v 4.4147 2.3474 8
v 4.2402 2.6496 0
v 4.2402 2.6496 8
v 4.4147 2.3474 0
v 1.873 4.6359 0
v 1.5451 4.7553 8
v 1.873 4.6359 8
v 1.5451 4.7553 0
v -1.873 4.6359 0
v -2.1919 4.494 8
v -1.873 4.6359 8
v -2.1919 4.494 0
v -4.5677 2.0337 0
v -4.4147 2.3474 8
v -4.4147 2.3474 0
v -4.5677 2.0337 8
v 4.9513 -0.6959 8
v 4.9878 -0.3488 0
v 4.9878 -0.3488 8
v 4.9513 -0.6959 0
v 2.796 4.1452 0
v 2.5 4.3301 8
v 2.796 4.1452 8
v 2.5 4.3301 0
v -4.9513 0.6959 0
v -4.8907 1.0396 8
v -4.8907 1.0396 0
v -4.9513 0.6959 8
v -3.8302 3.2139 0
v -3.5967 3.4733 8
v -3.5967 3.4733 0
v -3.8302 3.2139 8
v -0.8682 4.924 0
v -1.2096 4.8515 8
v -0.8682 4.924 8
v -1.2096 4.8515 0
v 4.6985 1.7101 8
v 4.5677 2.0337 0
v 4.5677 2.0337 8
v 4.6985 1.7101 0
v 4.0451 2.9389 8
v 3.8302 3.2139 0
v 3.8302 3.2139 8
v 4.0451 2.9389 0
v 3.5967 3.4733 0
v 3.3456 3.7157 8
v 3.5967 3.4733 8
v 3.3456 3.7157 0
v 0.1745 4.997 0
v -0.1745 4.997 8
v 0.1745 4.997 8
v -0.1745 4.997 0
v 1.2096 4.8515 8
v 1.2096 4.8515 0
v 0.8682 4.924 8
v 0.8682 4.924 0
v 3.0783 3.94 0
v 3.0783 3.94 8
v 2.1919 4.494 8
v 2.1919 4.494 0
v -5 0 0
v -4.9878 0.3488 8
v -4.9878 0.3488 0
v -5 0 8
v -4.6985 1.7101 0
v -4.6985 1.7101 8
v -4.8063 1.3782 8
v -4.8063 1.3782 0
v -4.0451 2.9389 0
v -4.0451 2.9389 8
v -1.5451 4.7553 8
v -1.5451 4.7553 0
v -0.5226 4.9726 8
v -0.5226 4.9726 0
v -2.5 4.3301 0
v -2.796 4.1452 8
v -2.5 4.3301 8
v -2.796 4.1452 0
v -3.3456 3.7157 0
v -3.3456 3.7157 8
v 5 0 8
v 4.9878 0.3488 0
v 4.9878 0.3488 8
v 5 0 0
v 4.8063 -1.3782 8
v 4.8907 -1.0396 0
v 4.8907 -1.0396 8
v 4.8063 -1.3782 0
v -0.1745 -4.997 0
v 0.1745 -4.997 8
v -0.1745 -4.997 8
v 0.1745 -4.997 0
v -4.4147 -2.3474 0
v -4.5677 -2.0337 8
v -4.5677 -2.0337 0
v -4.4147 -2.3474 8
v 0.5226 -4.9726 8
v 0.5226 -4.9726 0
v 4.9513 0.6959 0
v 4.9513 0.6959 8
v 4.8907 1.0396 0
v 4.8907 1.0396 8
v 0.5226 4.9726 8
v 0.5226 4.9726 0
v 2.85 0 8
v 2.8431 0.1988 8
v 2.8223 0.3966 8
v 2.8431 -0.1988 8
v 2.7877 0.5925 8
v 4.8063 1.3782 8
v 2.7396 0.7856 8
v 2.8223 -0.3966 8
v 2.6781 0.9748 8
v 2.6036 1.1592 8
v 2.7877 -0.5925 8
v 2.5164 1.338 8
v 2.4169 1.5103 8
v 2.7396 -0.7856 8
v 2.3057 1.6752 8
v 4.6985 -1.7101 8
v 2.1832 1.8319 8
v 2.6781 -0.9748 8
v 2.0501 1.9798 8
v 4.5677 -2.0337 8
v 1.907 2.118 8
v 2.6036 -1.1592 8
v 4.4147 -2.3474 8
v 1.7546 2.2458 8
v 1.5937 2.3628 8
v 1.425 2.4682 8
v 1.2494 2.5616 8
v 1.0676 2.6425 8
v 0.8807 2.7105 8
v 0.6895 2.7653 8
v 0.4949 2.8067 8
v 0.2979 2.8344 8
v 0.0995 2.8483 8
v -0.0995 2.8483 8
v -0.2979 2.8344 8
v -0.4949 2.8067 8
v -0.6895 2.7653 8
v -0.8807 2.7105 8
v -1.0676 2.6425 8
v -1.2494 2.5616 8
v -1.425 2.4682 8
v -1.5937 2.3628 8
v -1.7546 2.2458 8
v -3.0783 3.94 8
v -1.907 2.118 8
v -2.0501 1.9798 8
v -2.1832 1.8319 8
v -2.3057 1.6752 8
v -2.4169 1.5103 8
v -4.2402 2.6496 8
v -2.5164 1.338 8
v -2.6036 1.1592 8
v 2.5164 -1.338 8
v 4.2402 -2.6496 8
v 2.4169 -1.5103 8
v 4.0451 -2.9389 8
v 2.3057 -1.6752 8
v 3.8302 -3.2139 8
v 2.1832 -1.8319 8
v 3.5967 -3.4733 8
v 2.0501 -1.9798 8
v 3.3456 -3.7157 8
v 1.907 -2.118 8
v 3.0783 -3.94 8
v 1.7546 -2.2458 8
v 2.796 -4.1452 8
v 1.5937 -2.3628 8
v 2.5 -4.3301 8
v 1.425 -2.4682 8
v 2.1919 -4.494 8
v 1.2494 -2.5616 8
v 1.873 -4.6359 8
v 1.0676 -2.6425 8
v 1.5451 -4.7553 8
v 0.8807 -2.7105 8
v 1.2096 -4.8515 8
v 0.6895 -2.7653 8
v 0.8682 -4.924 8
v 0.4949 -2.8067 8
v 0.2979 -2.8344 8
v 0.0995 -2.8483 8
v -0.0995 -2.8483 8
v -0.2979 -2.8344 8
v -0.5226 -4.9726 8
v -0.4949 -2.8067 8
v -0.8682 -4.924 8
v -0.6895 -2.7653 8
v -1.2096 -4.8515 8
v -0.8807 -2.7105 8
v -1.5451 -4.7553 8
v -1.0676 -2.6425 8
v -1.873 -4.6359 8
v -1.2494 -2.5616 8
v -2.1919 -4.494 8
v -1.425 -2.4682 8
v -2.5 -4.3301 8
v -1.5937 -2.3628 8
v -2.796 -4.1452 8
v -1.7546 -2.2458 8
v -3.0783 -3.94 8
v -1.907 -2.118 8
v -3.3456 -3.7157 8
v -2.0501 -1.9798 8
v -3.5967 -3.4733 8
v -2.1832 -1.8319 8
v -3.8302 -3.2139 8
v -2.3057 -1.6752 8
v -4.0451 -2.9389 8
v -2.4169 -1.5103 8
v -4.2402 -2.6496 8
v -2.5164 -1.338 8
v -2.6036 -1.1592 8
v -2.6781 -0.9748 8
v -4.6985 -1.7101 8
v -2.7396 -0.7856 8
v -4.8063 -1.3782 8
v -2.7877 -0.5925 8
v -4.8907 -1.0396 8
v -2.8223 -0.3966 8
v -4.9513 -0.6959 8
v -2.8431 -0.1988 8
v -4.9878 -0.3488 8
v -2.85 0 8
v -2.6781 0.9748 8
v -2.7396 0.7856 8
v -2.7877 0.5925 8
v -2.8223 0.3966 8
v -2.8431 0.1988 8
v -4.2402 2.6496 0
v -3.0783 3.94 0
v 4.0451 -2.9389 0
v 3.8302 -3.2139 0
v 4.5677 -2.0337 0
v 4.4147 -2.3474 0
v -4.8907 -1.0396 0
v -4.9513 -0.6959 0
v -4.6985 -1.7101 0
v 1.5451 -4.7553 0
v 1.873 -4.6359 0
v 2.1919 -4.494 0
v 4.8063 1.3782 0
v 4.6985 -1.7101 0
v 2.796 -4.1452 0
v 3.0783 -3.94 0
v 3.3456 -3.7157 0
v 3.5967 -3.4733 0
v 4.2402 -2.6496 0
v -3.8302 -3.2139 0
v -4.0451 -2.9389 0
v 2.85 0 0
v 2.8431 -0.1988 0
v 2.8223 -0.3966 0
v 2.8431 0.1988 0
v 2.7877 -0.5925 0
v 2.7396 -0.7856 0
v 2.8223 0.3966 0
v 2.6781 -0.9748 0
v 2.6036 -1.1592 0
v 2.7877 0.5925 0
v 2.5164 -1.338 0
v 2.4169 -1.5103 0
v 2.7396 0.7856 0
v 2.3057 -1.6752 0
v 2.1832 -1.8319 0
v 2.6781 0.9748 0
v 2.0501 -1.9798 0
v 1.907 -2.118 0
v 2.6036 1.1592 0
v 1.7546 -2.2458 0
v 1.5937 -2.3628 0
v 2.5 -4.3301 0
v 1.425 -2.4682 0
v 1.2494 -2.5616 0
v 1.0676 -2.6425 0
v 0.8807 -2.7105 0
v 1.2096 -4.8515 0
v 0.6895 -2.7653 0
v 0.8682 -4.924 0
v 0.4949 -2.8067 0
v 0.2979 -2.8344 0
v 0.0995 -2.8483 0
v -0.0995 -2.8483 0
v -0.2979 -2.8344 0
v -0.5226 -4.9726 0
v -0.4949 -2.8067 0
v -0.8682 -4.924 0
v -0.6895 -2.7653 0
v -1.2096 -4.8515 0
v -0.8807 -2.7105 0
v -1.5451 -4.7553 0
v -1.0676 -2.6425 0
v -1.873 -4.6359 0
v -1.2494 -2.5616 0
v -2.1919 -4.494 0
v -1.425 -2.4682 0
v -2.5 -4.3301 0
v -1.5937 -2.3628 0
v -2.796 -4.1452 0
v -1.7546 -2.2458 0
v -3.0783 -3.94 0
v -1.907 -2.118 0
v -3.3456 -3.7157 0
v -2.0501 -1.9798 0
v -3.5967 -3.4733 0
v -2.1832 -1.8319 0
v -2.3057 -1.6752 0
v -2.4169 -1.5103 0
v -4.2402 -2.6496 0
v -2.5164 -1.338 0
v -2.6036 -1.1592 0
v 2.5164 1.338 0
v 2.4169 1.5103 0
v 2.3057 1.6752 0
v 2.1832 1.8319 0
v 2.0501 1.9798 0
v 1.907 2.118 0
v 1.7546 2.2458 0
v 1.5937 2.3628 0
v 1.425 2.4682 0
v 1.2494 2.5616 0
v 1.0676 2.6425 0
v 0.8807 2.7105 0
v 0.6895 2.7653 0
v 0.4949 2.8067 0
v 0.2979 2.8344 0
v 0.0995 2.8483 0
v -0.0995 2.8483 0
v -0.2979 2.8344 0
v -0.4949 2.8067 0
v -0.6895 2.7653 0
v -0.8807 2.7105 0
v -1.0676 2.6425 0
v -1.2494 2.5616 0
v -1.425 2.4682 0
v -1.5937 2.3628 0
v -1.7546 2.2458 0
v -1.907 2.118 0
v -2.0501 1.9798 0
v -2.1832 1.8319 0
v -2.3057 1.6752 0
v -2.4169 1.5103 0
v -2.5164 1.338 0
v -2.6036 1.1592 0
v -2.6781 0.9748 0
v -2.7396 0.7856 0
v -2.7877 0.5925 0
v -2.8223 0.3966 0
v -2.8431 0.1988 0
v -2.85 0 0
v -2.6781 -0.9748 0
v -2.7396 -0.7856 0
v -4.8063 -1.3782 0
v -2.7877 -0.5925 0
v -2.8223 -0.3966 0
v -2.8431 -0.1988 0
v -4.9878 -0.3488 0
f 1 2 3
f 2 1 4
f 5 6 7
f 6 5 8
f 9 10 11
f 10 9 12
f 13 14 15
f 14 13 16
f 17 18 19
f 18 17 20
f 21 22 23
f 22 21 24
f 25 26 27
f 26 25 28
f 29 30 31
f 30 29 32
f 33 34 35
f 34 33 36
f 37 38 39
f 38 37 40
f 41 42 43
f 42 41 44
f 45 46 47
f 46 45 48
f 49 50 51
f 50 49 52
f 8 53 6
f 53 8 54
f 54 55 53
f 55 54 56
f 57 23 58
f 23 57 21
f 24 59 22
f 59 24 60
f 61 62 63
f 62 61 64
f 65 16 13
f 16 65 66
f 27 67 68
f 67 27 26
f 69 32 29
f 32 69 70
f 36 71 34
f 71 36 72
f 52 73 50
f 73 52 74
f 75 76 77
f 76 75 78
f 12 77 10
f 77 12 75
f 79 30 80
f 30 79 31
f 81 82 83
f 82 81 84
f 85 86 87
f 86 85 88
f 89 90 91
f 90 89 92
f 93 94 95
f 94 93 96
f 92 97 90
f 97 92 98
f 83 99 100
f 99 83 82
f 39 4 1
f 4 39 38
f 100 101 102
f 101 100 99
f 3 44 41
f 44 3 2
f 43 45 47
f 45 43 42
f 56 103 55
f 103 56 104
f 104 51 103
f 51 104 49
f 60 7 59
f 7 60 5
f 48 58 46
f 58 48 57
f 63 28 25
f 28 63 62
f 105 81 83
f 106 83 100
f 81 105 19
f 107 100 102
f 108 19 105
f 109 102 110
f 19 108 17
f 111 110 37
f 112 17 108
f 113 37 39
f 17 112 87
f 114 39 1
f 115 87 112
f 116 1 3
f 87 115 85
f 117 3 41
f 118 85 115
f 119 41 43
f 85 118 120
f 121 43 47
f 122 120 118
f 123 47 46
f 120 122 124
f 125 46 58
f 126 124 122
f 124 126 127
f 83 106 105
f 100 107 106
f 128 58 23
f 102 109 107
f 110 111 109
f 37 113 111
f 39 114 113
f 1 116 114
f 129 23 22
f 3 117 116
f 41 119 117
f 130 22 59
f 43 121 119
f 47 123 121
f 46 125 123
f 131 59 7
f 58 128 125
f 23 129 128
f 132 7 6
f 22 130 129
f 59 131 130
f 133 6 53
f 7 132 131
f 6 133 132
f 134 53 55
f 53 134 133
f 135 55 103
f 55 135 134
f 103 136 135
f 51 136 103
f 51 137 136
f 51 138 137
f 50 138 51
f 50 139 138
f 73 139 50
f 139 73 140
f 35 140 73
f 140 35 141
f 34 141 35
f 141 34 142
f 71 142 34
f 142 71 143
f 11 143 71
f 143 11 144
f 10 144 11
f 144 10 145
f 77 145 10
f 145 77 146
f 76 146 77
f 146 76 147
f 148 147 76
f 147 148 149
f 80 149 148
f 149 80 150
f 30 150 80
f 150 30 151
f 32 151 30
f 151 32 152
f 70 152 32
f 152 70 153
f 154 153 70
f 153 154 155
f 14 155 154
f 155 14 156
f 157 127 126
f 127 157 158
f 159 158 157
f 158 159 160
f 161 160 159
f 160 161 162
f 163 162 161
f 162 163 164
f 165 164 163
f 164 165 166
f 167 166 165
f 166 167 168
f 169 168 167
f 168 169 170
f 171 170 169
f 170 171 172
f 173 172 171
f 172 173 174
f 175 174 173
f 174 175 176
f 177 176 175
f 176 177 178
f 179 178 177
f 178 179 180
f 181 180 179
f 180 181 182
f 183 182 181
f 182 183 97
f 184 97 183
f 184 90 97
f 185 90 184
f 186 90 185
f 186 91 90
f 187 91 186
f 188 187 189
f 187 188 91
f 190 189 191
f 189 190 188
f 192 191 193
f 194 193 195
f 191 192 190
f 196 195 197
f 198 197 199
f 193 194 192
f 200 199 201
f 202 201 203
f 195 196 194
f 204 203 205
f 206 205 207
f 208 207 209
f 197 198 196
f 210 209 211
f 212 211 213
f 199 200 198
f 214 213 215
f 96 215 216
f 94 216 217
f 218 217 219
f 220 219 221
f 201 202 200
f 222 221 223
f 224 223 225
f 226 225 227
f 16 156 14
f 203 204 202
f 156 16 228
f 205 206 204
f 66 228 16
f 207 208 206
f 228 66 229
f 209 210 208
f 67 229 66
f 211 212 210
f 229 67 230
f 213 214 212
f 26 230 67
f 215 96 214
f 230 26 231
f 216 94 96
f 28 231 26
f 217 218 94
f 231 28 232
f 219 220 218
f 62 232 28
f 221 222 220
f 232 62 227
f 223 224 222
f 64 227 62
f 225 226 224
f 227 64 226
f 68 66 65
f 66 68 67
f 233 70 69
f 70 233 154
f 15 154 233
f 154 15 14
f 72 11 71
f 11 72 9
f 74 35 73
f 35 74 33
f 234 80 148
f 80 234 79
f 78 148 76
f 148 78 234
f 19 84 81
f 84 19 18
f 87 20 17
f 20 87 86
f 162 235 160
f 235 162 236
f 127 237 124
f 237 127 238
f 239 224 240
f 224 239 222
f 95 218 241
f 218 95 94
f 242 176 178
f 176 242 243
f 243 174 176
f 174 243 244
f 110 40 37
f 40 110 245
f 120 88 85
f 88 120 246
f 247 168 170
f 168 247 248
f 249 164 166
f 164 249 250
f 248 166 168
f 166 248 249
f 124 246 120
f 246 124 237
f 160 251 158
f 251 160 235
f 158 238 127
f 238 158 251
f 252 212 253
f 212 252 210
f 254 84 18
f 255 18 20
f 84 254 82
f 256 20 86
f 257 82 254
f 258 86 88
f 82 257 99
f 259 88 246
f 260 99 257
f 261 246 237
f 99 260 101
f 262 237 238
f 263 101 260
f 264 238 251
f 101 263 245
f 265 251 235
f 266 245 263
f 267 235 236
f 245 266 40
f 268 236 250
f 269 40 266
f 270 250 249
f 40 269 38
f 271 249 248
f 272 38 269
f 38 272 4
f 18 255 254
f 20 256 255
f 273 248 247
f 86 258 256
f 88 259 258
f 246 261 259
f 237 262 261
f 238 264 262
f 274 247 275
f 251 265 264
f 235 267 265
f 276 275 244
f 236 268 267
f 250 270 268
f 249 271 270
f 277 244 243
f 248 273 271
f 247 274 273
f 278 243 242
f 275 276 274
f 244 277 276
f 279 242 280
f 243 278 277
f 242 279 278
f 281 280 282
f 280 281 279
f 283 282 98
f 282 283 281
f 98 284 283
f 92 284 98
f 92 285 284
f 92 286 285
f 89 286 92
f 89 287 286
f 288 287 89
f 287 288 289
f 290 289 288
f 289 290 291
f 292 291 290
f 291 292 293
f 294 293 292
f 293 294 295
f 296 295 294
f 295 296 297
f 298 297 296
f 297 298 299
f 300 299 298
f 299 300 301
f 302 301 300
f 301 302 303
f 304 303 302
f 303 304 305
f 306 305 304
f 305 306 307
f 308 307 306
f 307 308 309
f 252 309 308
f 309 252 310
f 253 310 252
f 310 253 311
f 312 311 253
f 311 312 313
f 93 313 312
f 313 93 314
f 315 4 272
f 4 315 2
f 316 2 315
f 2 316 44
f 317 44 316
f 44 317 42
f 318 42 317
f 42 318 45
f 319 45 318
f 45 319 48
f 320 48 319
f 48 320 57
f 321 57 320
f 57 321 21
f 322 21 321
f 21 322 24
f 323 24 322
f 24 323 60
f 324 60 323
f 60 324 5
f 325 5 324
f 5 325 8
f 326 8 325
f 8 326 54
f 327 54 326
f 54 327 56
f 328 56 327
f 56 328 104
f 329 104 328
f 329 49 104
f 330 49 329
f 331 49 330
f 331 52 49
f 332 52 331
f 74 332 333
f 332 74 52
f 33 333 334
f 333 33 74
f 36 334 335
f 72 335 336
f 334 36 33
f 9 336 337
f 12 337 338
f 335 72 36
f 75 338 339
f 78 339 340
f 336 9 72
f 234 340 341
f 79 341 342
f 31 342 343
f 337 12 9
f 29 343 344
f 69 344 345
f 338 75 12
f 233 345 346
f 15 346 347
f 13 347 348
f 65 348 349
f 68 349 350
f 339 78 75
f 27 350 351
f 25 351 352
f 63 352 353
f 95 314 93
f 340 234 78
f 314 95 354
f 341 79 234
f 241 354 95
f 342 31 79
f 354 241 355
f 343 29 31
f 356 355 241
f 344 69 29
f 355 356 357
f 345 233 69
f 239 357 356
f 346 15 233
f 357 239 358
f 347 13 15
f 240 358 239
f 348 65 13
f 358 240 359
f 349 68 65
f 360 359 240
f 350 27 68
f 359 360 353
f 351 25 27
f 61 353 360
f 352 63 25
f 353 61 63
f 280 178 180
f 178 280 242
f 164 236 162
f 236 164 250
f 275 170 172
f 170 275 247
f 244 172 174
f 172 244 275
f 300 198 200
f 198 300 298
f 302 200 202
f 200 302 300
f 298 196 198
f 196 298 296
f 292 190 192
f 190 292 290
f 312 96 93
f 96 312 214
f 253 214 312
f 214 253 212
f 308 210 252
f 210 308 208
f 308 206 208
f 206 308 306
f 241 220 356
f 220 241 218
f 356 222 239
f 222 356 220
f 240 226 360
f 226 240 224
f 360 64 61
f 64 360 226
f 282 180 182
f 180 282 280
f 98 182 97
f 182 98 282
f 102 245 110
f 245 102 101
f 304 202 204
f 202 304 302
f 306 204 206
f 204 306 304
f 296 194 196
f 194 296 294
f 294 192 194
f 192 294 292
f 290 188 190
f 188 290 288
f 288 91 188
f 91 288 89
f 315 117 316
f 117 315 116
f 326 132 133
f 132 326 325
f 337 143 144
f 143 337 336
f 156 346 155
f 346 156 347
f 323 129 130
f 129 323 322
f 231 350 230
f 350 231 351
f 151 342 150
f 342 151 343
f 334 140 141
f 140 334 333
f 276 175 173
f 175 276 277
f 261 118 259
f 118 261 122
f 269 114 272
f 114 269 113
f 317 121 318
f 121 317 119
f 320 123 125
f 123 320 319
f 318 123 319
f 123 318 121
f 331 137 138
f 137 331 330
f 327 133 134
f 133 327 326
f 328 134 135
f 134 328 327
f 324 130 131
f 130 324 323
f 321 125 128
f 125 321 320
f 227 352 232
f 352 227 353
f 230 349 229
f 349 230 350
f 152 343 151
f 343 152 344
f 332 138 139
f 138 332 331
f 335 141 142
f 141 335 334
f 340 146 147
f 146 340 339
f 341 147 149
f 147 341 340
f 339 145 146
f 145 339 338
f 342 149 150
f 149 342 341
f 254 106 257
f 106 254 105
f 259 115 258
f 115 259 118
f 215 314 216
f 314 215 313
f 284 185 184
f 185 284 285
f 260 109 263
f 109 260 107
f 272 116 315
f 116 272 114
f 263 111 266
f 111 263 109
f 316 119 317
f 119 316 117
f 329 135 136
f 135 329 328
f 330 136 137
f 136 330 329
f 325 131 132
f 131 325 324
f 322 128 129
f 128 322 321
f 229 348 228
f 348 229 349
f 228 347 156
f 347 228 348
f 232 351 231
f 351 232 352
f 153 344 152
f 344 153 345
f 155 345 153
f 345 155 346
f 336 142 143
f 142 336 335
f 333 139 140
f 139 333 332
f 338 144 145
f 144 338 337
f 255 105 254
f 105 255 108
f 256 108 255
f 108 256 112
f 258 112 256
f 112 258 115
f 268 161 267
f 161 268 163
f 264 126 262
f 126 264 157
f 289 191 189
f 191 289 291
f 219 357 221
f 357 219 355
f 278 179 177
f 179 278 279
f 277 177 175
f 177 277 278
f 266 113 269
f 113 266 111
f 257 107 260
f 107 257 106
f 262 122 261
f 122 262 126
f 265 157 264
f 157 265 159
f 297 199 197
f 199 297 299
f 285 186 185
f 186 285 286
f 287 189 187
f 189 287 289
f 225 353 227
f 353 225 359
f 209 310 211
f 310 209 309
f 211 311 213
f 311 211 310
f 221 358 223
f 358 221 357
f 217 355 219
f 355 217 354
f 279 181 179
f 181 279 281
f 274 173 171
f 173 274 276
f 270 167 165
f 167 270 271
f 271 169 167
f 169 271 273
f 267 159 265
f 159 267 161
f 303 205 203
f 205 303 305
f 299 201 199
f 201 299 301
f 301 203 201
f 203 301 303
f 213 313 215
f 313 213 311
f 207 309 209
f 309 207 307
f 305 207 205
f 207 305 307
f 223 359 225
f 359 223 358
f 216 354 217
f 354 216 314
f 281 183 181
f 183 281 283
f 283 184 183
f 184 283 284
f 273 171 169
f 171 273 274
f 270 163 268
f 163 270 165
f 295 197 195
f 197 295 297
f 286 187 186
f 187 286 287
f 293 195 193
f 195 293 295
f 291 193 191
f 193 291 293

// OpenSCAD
 
 
difference(){
  translate([0, 0, 4]) cylinder(d=10, h=8, center=true, $fn=90);
  translate([0, 0, 3.9]) cylinder(d=5.7, h=8.3, center=true, $fn=90);
   
 }
